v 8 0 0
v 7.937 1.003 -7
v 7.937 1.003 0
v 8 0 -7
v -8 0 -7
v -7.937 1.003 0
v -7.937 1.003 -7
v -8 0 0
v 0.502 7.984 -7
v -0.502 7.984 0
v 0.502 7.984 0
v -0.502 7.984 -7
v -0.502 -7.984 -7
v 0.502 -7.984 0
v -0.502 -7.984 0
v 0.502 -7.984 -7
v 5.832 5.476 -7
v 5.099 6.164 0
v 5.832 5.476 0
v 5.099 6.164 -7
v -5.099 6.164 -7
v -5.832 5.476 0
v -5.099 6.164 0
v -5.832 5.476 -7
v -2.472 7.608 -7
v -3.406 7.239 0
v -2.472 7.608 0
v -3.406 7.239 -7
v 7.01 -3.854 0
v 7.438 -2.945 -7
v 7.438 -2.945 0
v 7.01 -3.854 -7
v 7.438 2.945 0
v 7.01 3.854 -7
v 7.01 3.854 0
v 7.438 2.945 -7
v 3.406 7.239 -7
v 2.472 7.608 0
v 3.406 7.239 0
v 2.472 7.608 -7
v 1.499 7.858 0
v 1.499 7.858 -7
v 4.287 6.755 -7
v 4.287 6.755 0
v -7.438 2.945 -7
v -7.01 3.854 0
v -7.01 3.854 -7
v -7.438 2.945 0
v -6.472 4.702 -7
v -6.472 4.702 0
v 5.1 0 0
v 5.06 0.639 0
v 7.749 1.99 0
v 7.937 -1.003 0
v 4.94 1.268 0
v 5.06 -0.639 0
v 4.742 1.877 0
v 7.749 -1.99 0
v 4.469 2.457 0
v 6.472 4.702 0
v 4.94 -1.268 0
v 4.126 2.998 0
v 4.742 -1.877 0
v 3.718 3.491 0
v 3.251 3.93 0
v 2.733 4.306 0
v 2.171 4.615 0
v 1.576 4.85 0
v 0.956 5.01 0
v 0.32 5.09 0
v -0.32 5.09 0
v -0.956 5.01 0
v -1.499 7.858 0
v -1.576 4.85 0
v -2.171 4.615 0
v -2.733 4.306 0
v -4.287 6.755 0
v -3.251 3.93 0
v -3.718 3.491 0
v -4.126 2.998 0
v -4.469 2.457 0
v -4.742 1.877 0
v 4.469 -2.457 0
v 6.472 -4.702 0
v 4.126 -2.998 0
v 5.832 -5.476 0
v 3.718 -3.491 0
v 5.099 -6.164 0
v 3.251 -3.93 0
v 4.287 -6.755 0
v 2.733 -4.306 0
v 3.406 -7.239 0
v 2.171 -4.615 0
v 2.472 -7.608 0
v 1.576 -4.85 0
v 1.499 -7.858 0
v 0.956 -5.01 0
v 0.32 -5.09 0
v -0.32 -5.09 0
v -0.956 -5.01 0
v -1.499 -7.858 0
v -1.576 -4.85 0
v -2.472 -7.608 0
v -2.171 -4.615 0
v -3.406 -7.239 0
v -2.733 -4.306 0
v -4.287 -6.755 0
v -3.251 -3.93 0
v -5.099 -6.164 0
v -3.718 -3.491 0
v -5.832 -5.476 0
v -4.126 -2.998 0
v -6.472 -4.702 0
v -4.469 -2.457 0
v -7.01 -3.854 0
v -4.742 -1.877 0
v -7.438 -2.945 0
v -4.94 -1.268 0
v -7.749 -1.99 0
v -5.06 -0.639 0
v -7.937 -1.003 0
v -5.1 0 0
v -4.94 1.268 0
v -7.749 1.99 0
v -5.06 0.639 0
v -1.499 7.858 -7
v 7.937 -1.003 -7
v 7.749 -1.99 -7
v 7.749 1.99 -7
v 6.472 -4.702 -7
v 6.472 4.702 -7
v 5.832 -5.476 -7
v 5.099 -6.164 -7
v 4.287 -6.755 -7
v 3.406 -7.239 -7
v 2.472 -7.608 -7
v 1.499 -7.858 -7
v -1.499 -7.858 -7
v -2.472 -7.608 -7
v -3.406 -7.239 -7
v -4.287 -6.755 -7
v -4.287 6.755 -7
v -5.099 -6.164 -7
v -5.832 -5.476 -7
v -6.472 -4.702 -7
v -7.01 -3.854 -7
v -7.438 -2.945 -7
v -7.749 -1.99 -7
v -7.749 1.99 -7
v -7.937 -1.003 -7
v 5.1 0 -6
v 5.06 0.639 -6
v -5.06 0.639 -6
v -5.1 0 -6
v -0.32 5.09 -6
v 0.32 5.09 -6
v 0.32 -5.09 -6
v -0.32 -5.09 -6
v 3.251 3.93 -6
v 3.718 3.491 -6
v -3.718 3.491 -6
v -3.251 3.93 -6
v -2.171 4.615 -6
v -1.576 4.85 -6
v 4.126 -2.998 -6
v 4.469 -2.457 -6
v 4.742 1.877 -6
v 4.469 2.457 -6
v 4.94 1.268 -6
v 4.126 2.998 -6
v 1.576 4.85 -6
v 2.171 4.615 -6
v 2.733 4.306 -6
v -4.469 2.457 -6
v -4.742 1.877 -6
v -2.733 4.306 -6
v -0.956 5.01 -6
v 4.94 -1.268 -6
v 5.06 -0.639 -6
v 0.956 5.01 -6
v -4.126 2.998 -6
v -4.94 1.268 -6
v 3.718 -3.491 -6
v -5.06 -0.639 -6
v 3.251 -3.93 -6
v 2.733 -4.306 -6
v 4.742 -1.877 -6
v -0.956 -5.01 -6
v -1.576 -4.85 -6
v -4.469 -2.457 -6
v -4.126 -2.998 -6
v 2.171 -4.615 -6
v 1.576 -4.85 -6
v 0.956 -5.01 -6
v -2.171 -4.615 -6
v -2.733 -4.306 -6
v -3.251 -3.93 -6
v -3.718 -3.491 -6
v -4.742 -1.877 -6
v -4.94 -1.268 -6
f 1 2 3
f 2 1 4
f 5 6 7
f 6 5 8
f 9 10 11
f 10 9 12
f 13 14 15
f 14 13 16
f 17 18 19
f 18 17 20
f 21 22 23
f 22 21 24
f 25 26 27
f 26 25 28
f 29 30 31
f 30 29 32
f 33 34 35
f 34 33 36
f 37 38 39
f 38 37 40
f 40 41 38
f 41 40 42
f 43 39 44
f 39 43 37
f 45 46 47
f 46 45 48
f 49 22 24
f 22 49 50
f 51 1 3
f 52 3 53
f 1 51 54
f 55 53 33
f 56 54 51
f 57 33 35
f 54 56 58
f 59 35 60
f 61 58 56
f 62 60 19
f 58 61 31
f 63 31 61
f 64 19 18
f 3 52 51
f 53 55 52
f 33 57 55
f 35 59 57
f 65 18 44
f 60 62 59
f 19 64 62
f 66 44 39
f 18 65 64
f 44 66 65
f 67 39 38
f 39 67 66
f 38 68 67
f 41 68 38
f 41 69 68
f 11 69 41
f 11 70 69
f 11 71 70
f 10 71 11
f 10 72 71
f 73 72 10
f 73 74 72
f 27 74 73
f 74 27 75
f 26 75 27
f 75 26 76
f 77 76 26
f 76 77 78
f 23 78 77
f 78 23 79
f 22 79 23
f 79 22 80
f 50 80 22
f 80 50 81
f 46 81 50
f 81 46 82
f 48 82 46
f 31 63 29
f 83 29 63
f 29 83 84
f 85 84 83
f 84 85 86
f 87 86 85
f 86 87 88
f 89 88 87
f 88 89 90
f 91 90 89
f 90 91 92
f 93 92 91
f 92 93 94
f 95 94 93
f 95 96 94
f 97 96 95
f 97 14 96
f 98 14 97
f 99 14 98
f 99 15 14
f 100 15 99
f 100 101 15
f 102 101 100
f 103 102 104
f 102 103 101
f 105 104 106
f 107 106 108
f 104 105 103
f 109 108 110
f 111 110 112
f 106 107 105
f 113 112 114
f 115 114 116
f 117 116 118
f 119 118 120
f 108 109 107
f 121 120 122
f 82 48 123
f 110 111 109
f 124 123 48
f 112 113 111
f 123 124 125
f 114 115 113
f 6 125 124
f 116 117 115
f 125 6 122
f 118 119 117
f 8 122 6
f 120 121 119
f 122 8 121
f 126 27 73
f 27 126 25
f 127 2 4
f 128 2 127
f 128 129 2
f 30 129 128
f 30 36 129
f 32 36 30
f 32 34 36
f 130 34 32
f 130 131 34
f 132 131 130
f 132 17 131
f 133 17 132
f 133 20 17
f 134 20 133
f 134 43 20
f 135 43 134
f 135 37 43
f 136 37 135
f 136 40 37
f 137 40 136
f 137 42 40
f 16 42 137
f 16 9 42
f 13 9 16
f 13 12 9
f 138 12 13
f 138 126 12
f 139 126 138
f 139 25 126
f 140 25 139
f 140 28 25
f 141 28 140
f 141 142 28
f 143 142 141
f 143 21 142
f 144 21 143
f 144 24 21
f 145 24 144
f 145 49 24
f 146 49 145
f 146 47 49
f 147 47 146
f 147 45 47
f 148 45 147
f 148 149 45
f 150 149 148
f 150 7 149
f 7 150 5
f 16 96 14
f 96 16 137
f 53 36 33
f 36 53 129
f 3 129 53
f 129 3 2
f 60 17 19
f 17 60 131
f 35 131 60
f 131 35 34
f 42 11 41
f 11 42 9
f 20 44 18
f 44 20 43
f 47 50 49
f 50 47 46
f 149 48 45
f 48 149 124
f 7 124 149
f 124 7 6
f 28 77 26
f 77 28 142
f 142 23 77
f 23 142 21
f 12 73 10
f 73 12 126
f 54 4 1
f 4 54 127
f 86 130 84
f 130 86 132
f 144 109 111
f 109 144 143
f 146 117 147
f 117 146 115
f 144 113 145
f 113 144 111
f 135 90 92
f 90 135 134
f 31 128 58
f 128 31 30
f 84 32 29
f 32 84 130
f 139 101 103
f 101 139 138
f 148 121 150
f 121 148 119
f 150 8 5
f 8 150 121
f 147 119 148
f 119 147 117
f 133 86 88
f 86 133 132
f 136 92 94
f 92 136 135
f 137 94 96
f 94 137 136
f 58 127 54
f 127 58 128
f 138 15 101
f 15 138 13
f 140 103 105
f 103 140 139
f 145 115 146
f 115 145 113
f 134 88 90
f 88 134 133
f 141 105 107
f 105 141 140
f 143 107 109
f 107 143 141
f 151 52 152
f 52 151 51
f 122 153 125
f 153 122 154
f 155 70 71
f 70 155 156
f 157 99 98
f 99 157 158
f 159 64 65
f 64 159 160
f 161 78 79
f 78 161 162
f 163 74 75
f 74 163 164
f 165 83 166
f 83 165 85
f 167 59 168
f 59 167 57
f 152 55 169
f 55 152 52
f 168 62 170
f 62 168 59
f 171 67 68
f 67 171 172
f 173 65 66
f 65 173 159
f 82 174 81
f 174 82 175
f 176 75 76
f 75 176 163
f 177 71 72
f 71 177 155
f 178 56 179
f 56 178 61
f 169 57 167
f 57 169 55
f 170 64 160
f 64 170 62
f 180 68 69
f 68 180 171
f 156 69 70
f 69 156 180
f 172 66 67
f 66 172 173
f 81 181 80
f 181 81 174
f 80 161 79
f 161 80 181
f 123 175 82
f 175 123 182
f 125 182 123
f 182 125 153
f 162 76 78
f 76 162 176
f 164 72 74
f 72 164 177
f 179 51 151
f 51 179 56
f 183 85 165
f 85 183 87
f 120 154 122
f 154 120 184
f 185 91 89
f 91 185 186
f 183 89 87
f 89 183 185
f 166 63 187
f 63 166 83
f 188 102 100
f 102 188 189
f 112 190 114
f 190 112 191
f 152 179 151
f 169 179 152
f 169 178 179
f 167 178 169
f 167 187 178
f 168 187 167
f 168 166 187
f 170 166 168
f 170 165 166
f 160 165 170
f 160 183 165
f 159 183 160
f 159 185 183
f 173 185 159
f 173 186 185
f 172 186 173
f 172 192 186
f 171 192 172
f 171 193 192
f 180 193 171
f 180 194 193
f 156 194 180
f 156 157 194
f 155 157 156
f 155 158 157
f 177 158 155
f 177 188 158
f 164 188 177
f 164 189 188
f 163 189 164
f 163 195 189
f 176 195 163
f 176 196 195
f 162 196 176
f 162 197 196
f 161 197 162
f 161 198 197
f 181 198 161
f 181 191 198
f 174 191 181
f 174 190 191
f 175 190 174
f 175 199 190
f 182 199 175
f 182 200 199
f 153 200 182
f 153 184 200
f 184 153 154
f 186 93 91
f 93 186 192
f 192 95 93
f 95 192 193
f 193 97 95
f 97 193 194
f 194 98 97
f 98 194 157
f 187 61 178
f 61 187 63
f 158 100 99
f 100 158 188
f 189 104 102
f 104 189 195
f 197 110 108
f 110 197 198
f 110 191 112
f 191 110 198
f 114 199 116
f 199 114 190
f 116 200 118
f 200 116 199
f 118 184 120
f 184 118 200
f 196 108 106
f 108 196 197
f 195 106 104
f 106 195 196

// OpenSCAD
$fn = 50;


difference() {
	union() {
		translate(v = [0, 0, -7.0000000000]) {
			cylinder(h = 7, r = 8.0000000000);
		}
	}
	union() {
		#translate(v = [0, 0, -6.0000000000]) {
			cylinder(h = 6, r = 5.1000000000);
		}
	}
}
